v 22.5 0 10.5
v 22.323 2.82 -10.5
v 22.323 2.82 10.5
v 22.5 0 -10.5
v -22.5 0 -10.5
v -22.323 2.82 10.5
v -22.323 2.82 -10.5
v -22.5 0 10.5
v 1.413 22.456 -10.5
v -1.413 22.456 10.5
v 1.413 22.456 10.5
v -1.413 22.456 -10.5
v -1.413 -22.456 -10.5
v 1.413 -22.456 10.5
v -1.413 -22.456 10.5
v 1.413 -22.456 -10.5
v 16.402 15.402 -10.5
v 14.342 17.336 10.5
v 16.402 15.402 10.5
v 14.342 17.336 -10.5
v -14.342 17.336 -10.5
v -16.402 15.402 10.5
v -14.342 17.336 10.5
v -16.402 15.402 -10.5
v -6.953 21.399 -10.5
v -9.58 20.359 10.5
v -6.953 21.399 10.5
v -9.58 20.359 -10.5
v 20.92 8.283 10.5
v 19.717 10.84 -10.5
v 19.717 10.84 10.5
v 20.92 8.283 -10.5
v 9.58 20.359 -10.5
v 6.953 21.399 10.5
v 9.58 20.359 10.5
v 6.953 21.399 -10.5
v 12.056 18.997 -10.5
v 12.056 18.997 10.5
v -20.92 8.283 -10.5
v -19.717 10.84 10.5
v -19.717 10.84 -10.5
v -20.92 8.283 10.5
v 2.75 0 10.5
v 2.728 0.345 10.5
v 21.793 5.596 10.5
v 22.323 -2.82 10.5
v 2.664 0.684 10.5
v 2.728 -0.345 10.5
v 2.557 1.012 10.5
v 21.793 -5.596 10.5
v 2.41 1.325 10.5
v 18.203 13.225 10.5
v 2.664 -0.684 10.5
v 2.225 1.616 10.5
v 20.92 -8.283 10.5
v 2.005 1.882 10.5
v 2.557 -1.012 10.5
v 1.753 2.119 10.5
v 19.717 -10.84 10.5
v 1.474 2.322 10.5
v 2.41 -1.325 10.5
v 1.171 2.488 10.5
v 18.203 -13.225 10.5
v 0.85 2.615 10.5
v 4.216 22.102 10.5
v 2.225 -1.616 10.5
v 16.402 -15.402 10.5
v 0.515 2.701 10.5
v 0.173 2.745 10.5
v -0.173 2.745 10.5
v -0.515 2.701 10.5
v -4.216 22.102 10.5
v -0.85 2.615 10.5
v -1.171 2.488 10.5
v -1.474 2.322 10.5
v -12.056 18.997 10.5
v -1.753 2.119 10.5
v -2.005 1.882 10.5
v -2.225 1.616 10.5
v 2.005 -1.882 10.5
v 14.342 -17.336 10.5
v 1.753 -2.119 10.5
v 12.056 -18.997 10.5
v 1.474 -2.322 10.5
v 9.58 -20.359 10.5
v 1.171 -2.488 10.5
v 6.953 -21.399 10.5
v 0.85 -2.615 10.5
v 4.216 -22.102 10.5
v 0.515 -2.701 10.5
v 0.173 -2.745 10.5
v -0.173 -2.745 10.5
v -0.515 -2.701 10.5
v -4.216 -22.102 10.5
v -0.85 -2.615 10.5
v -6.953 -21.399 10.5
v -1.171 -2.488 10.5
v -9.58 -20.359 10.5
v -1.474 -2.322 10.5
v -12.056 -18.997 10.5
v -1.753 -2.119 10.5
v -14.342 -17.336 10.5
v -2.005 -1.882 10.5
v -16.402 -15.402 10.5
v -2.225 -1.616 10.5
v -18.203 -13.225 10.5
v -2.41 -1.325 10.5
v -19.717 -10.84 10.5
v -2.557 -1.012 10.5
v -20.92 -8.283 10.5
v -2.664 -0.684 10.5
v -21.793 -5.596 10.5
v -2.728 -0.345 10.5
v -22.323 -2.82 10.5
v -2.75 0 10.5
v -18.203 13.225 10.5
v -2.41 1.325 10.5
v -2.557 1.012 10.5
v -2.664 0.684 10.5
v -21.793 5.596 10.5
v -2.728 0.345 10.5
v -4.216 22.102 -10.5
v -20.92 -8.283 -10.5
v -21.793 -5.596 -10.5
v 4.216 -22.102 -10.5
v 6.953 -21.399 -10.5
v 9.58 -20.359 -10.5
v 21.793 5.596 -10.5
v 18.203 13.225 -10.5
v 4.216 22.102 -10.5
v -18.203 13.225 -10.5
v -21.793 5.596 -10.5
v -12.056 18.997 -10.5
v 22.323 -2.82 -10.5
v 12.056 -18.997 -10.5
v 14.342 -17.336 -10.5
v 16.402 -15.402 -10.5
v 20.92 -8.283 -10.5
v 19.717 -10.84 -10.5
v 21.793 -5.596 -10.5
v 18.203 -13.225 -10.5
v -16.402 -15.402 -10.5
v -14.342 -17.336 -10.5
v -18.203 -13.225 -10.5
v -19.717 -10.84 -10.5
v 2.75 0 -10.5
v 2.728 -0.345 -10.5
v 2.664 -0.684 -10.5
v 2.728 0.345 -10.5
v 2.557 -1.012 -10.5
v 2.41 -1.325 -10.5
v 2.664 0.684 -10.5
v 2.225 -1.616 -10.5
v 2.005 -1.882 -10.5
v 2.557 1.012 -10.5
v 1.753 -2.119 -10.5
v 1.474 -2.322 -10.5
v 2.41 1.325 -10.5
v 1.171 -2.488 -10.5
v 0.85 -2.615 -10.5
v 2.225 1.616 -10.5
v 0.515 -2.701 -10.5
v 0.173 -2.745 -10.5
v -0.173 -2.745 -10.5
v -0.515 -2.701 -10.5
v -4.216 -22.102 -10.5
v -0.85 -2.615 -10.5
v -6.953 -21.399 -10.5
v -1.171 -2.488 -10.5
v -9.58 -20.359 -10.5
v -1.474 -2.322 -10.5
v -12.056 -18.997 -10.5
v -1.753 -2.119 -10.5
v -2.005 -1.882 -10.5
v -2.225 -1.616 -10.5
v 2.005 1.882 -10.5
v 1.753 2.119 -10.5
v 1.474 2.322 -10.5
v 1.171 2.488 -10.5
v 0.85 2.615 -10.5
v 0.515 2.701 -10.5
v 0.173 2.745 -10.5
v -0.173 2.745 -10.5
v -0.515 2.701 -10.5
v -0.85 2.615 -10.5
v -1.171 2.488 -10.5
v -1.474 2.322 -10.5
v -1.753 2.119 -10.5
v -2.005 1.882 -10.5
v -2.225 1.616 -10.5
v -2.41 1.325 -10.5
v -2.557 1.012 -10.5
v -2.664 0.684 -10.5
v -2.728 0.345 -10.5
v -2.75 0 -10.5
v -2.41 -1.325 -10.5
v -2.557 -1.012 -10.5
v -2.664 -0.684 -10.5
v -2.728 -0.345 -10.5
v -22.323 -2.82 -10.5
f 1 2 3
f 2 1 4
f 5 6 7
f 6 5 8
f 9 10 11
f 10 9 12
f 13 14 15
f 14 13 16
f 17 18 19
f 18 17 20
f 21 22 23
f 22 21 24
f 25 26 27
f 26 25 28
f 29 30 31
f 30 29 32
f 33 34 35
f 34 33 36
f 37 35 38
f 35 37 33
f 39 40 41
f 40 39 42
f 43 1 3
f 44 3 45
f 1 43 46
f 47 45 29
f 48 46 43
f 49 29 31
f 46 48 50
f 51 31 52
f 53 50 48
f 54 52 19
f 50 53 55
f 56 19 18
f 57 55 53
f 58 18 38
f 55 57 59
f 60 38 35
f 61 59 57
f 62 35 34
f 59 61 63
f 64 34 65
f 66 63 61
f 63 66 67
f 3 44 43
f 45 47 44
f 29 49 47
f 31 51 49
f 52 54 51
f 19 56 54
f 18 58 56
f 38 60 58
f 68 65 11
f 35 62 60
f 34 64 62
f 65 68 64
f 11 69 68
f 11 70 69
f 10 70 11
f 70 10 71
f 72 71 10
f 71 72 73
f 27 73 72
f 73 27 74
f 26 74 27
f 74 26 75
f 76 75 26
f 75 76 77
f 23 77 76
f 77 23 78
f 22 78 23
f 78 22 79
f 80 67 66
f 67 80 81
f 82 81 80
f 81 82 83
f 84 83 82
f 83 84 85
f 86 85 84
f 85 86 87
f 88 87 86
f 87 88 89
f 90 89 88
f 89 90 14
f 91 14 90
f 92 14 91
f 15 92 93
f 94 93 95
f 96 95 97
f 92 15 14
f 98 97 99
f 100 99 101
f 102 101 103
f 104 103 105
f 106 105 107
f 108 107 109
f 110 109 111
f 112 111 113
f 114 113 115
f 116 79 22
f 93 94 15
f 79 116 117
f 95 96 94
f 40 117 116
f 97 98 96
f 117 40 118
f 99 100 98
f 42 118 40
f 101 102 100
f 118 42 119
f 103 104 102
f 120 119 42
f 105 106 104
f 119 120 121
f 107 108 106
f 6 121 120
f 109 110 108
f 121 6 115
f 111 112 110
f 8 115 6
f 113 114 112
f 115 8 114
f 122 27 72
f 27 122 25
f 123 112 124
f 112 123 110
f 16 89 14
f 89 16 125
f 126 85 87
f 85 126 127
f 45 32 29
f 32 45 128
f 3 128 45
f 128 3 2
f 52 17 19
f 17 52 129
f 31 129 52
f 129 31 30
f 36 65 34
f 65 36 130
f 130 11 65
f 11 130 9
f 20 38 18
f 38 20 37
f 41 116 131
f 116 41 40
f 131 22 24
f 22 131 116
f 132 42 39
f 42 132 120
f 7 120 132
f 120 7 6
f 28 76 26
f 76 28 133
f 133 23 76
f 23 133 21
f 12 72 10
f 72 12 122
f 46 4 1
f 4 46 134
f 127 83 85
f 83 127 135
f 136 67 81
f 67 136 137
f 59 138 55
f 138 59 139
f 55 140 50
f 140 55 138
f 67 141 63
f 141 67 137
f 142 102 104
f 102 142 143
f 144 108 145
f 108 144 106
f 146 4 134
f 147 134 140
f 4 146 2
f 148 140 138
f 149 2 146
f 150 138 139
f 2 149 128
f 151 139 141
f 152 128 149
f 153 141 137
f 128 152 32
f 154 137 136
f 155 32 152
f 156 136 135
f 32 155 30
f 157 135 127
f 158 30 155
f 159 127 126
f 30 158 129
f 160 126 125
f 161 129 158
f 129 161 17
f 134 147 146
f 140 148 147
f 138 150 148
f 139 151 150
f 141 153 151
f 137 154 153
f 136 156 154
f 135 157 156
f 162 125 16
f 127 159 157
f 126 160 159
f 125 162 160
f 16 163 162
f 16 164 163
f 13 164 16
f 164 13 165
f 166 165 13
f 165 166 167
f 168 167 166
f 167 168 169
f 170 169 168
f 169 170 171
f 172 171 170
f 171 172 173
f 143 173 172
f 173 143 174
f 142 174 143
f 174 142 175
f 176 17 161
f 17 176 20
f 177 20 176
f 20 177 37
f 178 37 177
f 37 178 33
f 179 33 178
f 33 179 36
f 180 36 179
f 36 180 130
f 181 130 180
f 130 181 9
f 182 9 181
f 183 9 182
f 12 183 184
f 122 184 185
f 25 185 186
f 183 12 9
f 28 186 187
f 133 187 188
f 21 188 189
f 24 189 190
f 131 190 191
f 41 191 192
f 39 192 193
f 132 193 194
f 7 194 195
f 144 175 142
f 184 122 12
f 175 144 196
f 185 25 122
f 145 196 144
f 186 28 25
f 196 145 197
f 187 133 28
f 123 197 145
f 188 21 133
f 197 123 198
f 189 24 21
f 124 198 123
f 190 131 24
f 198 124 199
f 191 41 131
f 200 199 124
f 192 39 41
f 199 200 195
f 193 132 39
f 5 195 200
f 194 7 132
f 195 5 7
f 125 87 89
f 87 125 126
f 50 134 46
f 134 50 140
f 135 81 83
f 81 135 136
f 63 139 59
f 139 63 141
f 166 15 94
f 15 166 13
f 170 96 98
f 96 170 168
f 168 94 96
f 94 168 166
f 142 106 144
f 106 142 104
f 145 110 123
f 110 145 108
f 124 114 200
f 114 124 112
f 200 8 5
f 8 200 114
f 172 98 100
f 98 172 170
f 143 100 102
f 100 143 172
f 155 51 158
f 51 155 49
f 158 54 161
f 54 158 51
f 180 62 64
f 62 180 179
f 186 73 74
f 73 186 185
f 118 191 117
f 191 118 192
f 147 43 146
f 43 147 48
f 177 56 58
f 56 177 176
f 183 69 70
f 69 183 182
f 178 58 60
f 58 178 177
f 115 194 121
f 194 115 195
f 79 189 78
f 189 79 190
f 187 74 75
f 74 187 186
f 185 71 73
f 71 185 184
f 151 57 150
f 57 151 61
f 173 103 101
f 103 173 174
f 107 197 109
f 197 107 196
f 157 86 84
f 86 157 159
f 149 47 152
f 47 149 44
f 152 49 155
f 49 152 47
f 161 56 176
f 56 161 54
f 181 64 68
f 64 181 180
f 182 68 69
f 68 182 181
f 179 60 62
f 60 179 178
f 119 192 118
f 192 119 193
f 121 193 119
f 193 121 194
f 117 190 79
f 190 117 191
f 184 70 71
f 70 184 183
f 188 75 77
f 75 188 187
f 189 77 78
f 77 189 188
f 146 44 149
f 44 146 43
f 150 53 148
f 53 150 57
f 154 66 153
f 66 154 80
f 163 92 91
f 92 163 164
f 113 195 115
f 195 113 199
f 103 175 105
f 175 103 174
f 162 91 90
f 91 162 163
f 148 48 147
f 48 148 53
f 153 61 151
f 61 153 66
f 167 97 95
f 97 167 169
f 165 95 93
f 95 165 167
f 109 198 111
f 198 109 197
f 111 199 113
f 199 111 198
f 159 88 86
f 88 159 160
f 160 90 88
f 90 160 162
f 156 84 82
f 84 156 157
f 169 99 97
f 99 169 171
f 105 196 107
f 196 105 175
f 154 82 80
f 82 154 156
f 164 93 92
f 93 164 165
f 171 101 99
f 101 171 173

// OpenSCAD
$fn = 50;


difference() {
	union() {
		translate(v = [0, 0, -10.5000000000]) {
			cylinder(h = 21, r = 22.5000000000);
		}
	}
	union() {
		translate(v = [0, 0, -100.0000000000]) {
			cylinder(h = 200, r = 2.7500000000);
		}
	}
}
